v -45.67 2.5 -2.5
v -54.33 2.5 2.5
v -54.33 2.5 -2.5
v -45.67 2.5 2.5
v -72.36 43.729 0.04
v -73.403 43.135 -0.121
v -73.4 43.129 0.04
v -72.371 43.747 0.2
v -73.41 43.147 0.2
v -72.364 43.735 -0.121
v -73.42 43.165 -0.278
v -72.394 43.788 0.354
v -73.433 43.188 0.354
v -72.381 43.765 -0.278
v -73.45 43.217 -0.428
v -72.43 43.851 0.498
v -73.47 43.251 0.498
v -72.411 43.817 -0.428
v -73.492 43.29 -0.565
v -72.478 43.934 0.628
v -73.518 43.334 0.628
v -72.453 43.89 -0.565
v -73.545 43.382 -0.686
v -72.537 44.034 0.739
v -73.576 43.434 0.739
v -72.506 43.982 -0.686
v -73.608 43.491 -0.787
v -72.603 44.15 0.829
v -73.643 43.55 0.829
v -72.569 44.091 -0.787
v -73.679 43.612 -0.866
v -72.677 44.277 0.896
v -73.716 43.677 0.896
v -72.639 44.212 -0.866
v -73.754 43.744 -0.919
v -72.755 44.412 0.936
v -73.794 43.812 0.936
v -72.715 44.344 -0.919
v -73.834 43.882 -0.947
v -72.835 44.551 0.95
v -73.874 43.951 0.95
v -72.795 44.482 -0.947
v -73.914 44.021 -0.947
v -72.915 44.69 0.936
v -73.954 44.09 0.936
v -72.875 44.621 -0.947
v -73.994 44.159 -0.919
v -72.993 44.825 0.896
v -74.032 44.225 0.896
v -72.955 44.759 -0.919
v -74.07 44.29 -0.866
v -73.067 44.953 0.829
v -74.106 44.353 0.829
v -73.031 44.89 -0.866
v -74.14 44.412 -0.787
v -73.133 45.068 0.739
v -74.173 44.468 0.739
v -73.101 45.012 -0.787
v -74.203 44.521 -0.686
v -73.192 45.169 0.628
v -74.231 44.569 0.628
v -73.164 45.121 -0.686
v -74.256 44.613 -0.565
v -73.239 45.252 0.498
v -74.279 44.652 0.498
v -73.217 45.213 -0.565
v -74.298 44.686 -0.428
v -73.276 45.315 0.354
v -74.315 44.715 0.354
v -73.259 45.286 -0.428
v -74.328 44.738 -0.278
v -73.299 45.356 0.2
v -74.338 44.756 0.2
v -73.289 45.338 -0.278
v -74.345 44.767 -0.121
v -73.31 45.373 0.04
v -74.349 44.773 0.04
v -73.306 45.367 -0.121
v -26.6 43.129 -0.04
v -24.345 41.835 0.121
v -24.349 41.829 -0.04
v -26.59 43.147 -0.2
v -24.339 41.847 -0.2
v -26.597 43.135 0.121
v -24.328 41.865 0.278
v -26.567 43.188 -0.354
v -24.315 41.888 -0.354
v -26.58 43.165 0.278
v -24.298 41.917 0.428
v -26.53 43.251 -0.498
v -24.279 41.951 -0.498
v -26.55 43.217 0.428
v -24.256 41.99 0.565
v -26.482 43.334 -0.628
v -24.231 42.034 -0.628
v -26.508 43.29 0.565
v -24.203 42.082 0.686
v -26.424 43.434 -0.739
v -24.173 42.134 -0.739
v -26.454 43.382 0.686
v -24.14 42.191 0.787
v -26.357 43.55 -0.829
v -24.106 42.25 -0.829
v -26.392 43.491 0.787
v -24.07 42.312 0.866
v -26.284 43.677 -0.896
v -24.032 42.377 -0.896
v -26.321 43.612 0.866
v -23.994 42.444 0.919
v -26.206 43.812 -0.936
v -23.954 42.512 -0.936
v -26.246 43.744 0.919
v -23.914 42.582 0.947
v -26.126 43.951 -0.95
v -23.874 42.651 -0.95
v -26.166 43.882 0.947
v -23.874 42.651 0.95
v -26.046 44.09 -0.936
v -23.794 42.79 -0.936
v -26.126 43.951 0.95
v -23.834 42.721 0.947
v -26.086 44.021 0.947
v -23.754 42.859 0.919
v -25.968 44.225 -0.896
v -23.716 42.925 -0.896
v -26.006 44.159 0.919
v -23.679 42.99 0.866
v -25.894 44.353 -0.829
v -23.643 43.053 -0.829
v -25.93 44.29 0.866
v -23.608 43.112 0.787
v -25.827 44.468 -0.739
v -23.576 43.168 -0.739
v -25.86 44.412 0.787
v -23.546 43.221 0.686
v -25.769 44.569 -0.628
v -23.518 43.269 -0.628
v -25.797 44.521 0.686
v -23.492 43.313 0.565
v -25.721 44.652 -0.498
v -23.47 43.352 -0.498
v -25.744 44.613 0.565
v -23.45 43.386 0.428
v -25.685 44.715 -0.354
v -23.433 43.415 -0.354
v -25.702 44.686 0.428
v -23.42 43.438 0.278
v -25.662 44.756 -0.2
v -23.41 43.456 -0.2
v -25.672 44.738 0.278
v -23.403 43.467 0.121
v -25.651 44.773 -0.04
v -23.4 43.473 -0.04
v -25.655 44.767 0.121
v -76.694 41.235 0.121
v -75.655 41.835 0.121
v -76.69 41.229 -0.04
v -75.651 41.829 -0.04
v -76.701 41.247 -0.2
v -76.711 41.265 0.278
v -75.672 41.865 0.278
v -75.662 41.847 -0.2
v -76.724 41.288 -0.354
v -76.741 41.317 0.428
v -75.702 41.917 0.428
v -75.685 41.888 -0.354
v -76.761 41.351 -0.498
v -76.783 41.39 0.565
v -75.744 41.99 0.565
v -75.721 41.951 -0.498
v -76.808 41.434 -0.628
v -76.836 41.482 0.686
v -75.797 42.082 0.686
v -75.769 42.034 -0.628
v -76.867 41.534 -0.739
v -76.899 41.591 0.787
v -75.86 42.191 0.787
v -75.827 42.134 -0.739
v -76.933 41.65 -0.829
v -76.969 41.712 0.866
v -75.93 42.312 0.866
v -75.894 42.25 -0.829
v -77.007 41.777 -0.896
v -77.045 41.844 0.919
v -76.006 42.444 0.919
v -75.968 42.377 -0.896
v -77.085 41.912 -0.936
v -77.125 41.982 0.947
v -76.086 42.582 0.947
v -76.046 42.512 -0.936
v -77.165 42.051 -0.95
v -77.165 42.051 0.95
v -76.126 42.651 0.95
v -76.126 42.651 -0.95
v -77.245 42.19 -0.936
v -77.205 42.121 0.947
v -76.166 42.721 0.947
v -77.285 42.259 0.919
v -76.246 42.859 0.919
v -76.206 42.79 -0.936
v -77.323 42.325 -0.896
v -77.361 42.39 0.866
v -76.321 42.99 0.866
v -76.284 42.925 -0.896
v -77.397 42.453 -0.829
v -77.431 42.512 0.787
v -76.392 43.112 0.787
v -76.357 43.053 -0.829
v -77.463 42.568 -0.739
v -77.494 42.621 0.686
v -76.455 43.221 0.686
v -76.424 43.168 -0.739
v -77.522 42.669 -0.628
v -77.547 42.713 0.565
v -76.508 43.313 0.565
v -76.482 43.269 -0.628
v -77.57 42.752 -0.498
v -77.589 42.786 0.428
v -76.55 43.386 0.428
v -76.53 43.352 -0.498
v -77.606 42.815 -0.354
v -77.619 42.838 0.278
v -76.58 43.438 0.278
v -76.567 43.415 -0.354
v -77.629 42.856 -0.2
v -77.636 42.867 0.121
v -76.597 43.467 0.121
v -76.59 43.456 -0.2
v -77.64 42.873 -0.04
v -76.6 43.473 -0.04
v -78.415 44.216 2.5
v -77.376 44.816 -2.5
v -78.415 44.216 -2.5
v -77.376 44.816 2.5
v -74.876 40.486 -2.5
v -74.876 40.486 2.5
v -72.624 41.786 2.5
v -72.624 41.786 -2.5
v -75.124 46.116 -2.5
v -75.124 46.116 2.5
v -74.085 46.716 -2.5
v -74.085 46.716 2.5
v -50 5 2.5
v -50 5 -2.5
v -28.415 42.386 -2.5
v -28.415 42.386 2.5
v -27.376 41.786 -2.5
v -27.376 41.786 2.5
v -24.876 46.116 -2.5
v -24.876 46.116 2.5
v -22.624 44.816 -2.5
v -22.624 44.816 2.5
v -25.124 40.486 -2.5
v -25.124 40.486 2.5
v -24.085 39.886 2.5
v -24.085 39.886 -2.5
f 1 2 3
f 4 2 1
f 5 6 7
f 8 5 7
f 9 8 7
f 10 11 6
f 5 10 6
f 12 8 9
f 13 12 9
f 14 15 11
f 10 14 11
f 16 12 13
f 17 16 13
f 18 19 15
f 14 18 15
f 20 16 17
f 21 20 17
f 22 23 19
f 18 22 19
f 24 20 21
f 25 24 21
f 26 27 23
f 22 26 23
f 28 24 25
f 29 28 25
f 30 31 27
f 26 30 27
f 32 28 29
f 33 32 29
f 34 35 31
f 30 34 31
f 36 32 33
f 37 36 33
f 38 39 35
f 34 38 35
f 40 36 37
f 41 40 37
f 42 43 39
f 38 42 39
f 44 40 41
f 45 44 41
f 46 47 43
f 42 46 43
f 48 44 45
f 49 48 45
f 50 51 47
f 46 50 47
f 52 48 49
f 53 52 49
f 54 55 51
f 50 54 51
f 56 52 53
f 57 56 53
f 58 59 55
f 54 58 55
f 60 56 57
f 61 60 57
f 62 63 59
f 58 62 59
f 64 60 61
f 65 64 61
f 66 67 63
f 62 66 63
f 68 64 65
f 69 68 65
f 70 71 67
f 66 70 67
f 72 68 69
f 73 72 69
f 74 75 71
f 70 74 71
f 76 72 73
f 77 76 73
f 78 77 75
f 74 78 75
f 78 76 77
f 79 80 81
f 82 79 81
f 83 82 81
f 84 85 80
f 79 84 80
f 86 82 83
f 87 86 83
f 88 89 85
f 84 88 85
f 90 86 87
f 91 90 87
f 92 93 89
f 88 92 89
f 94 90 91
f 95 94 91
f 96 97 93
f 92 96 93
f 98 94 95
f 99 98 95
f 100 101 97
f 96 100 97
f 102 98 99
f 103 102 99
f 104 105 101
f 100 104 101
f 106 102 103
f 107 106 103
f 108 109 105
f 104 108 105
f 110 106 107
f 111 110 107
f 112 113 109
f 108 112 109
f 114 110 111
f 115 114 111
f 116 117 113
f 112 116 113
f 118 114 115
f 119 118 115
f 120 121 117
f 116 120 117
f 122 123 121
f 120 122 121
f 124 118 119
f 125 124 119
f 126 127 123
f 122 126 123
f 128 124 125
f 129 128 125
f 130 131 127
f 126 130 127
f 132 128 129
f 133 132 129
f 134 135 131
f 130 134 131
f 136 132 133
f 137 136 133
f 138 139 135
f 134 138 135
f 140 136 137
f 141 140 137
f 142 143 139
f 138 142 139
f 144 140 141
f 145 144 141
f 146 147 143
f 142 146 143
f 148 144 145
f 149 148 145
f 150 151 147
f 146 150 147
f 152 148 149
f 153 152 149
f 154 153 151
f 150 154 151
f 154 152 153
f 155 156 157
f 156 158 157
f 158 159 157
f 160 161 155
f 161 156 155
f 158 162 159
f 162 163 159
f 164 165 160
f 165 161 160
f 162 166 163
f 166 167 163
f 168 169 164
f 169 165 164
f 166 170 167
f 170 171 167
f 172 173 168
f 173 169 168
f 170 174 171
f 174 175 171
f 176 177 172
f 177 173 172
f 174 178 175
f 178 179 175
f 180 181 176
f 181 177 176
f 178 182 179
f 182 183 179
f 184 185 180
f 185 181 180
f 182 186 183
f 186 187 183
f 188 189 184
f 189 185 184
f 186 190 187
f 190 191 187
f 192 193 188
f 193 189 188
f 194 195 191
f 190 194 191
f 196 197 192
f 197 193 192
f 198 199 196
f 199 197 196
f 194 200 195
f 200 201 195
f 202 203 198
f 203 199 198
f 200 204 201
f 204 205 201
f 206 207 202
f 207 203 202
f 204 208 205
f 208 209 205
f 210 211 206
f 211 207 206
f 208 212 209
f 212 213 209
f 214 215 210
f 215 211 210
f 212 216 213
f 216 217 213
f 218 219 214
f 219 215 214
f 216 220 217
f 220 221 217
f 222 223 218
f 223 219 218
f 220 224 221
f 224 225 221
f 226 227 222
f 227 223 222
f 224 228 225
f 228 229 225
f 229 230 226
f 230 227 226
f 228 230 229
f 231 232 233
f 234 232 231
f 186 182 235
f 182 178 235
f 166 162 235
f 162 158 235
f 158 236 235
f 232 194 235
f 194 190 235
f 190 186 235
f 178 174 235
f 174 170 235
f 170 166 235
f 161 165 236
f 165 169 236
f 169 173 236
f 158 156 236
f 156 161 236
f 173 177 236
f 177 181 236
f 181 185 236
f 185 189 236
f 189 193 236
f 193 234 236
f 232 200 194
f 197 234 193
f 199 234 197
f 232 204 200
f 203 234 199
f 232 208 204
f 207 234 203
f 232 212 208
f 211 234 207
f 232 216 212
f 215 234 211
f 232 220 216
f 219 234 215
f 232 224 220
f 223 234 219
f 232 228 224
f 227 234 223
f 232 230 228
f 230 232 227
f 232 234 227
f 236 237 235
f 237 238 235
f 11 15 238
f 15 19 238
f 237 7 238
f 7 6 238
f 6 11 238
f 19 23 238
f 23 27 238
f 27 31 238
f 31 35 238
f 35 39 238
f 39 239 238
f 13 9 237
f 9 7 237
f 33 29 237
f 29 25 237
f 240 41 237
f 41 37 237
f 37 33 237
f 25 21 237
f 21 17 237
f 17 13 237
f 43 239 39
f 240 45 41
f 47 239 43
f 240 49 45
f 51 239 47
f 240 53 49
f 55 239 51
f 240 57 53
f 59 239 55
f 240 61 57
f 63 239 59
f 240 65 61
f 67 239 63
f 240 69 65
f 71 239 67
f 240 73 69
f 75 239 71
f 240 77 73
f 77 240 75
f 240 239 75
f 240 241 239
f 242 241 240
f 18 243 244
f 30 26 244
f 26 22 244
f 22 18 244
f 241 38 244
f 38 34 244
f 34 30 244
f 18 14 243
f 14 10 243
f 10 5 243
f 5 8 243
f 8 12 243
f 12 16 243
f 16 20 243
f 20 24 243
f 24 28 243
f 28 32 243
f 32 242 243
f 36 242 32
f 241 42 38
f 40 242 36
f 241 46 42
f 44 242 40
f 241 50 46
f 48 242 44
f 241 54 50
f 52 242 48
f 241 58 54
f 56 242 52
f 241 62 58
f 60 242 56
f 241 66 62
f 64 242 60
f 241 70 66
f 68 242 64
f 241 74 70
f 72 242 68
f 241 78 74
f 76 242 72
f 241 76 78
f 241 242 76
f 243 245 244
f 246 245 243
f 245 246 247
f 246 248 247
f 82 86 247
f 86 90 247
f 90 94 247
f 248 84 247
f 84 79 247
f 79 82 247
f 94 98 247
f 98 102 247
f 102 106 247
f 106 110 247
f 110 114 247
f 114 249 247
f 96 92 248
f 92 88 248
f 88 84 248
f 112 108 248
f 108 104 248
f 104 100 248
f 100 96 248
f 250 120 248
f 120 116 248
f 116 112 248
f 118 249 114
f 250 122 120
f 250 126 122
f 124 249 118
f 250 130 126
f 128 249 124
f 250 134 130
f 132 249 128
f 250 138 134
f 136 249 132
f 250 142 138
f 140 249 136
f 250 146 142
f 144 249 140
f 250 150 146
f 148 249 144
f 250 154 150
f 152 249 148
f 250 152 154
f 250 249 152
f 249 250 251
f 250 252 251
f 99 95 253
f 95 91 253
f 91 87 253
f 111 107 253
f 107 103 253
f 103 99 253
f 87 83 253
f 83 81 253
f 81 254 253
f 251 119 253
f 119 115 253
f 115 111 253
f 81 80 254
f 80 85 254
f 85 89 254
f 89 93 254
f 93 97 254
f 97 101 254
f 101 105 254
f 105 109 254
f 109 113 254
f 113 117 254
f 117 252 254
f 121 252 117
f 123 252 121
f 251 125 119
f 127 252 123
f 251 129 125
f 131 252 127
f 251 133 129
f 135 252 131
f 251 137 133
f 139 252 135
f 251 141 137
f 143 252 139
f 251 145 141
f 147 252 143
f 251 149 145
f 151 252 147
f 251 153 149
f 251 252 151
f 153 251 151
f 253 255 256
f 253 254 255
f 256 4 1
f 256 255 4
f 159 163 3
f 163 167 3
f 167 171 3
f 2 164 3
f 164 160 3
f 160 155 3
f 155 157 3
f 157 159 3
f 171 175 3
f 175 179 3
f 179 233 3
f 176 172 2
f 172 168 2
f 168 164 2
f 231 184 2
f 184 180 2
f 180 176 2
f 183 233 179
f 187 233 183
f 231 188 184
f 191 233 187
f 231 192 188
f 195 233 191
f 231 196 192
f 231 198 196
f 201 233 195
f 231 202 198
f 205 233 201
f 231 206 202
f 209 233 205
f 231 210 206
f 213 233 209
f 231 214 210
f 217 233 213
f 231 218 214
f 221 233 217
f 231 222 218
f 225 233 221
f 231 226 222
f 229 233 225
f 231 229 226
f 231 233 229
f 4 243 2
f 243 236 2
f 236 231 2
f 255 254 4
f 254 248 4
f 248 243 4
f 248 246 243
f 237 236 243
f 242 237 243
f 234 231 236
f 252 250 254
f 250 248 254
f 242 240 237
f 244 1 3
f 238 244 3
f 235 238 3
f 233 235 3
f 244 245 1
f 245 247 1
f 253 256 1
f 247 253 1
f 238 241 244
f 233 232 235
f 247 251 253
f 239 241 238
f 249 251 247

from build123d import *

# Parameters (mm, degrees)
SKETCH1_W               = 5
SKETCH1_H               = 5
SKETCH1_R               = 0.95
CENTER_DEPTH            = 1.3
RIGHTSIDE_START         = 1.3
SKETCH1_2_W             = 5
SKETCH1_2_H             = 5
SKETCH1_2_R             = 0.95
RIGHTSIDE_DEPTH         = 1.2
LEFTSIDE_START          = -1.3
SKETCH1_3_W             = 5
SKETCH1_3_H             = 5
SKETCH1_3_R             = 0.95
LEFTSIDE_DEPTH          = 1.2
SKETCH3_W               = 5
SKETCH3_H               = 5
BOSS_EXTRUDE4_DEPTH     = 47.5
CUT_EXTRUDE1_DEPTH      = 5
CIRPATTERN2_COUNT       = 6
CIRPATTERN3_COUNT       = 3
CIRPATTERN4_START       = -44.601270189
CIRPATTERN4_OUTLINE_W   = 5
CIRPATTERN4_OUTLINE_H   = 5
CIRPATTERN4_OUTLINE_R   = 0.95
CIRPATTERN4_DEPTH       = 2.6
CIRPATTERN4_2_OUTLINE_W = 5
CIRPATTERN4_2_OUTLINE_H = 5
CIRPATTERN4_2_OUTLINE_R = 0.95
CIRPATTERN4_2_DEPTH     = 2.6
CIRPATTERN4_START_2     = -1.3
CIRPATTERN4_3_OUTLINE_W = 5
CIRPATTERN4_3_OUTLINE_H = 5
CIRPATTERN4_3_OUTLINE_R = 0.95
CIRPATTERN4_3_DEPTH     = 2.6
SKETCH5_W               = 5
SKETCH5_H               = 2.6
CUT_EXTRUDE2_DEPTH      = 5
INTERSECT1_START        = -46.716333699
INTERSECT1_OUTLINE_W    = 105
INTERSECT1_OUTLINE_H    = 5
INTERSECT1_OUTLINE_R    = 0.95
INTERSECT1_DEPTH        = 49.216333699


# Read off the part's stored shape, not the designer's step: CirPattern4, Intersect1
with BuildPart() as part:
    # Sketch1 → Center (new, symmetric)
    with BuildSketch(Plane(origin=(0, 0, 0), x_dir=(1, 0, 0), z_dir=(0, 1, 0))):
        Rectangle(SKETCH1_W, SKETCH1_H)
        with Locations(Location((0, 0, 0), (0, 0, 270))):
            Circle(SKETCH1_R, mode=Mode.SUBTRACT)
    extrude(amount=CENTER_DEPTH, both=True)

    # Sketch5 → Cut-Extrude2 (cut)
    with BuildSketch(Plane(origin=(2.5, 0, 0), x_dir=(0, 0, -1), z_dir=(1, 0, 0))):
        Rectangle(SKETCH5_W, SKETCH5_H)
    extrude(amount=-CUT_EXTRUDE2_DEPTH, mode=Mode.SUBTRACT)


with BuildPart() as body_2:
    # Sketch1<2> → RightSide (new body)
    with BuildSketch(Plane(origin=(0, 0, 0), x_dir=(1, 0, 0), z_dir=(0, 1, 0)).offset(RIGHTSIDE_START)):
        Rectangle(SKETCH1_2_W, SKETCH1_2_H)
        with Locations(Location((0, 0, 0), (0, 0, 270))):
            Circle(SKETCH1_2_R, mode=Mode.SUBTRACT)
    extrude(amount=RIGHTSIDE_DEPTH)


with BuildPart() as body_3:
    # Sketch1<3> → LeftSide (new body)
    with BuildSketch(Plane(origin=(0, 0, 0), x_dir=(1, 0, 0), z_dir=(0, 1, 0)).offset(LEFTSIDE_START)):
        Rectangle(SKETCH1_3_W, SKETCH1_3_H)
        with Locations(Location((0, 0, 0), (0, 0, 270))):
            Circle(SKETCH1_3_R, mode=Mode.SUBTRACT)
    extrude(amount=-LEFTSIDE_DEPTH)


with BuildPart() as body_4:
    # Sketch3 → Boss-Extrude4 (new body)
    with BuildSketch(Plane.ZY.offset(2.5)):
        Rectangle(SKETCH3_W, SKETCH3_H)
    extrude(amount=BOSS_EXTRUDE4_DEPTH)

    # Sketch4 → Cut-Extrude1 (cut)
    with BuildSketch(Plane.XY.offset(-2.5)):
        Polygon((-50, 0), (-50, -2.5), (-45.669872981, -2.5), align=None)
        Polygon((-50, 2.5), (-50, 0), (-45.669872981, 2.5), align=None)
    extrude(amount=CUT_EXTRUDE1_DEPTH, mode=Mode.SUBTRACT)


with BuildPart() as cirpattern2_1:
    # CirPattern2: pattern copy
    add(body_4.part.rotate(Axis((-50, 0, 0), (0, 0, 1)), 1 * 360 / CIRPATTERN2_COUNT))


with BuildPart() as cirpattern2_2:
    # CirPattern2: pattern copy
    add(body_4.part.rotate(Axis((-50, 0, 0), (0, 0, 1)), 2 * 360 / CIRPATTERN2_COUNT))


with BuildPart() as cirpattern2_3:
    # CirPattern2: pattern copy
    add(body_4.part.rotate(Axis((-50, 0, 0), (0, 0, 1)), 3 * 360 / CIRPATTERN2_COUNT))


with BuildPart() as cirpattern2_4:
    # CirPattern2: pattern copy
    add(body_4.part.rotate(Axis((-50, 0, 0), (0, 0, 1)), 4 * 360 / CIRPATTERN2_COUNT))


with BuildPart() as cirpattern2_5:
    # CirPattern2: pattern copy
    add(body_4.part.rotate(Axis((-50, 0, 0), (0, 0, 1)), 5 * 360 / CIRPATTERN2_COUNT))


with BuildPart() as cirpattern3_1:
    # CirPattern3: pattern copy
    add(body_3.part.rotate(Axis((-50, 0, 0), (0, 0, 1)), 1 * 360 / CIRPATTERN3_COUNT))


with BuildPart() as cirpattern3_2:
    # CirPattern3: pattern copy
    add(body_3.part.rotate(Axis((-50, 0, 0), (0, 0, 1)), 2 * 360 / CIRPATTERN3_COUNT))


with BuildPart() as cirpattern3_3:
    # CirPattern3: pattern copy
    add(body_2.part.rotate(Axis((-50, 0, 0), (0, 0, 1)), 1 * 360 / CIRPATTERN3_COUNT))


with BuildPart() as cirpattern3_4:
    # CirPattern3: pattern copy
    add(body_2.part.rotate(Axis((-50, 0, 0), (0, 0, 1)), 2 * 360 / CIRPATTERN3_COUNT))


with BuildPart() as body_14:
    # CirPattern4 outline → CirPattern4 (new body)
    with BuildSketch(Plane(origin=(0, 0, 0), x_dir=(0.49999999999999767, 0.86602540378444, 0), z_dir=(0.8660254037844399, -0.49999999999999795, 0)).offset(CIRPATTERN4_START)):
        with Locations((25, 0)):
            Rectangle(CIRPATTERN4_OUTLINE_W, CIRPATTERN4_OUTLINE_H)
        with Locations((25, 0)):
            Circle(CIRPATTERN4_OUTLINE_R, mode=Mode.SUBTRACT)
    extrude(amount=CIRPATTERN4_DEPTH)


with BuildPart() as body_15:
    # CirPattern4 2 outline → CirPattern4 2 (new body)
    with BuildSketch(Plane(origin=(0, 0, 0), x_dir=(0.5000000000000098, -0.8660254037844329, 0), z_dir=(0.8660254037844329, 0.50000000000001, 0)).offset(CIRPATTERN4_START)):
        with Locations((25, 0)):
            Rectangle(CIRPATTERN4_2_OUTLINE_W, CIRPATTERN4_2_OUTLINE_H)
        with Locations((25, 0)):
            Circle(CIRPATTERN4_2_OUTLINE_R, mode=Mode.SUBTRACT)
    extrude(amount=CIRPATTERN4_2_DEPTH)


with BuildPart() as body_16:
    # CirPattern4 3 outline → CirPattern4 3 (new body)
    with BuildSketch(Plane(origin=(0, 0, 0), x_dir=(1, 0, 0), z_dir=(0, 1, 0)).offset(CIRPATTERN4_START_2)):
        with Locations((-100, 0)):
            Rectangle(CIRPATTERN4_3_OUTLINE_W, CIRPATTERN4_3_OUTLINE_H)
        with Locations((-100, 0)):
            Circle(CIRPATTERN4_3_OUTLINE_R, mode=Mode.SUBTRACT)
    extrude(amount=CIRPATTERN4_3_DEPTH)


with BuildPart() as cirpattern2_5_1:
    add(cirpattern2_5.part)

    # Combine1: union CirPattern2_3, CirPattern2_4, body 16, CirPattern3_2, CirPattern3_4, body 15, CirPattern2_1, body 3, body 14, body 4, body 2, CirPattern2_2, CirPattern3_1, CirPattern3_3
    add(cirpattern2_3.part)
    add(cirpattern2_4.part)
    add(body_16.part)
    add(cirpattern3_2.part)
    add(cirpattern3_4.part)
    add(body_15.part)
    add(cirpattern2_1.part)
    add(body_3.part)
    add(body_14.part)
    add(body_4.part)
    add(body_2.part)
    add(cirpattern2_2.part)
    add(cirpattern3_1.part)
    add(cirpattern3_3.part)

    # Intersect1 outline → Intersect1 (cut)
    with BuildSketch(Plane(origin=(0, 0, 0), x_dir=(1, 0, 0), z_dir=(0, 1, 0)).offset(INTERSECT1_START)):
        with Locations((-50, 0)):
            Rectangle(INTERSECT1_OUTLINE_W, INTERSECT1_OUTLINE_H)
        with Locations((-100, 0)):
            Circle(INTERSECT1_OUTLINE_R, mode=Mode.SUBTRACT)
        Circle(INTERSECT1_OUTLINE_R, mode=Mode.SUBTRACT)
    extrude(amount=INTERSECT1_DEPTH, mode=Mode.SUBTRACT)


solid = cirpattern2_5_1.part
